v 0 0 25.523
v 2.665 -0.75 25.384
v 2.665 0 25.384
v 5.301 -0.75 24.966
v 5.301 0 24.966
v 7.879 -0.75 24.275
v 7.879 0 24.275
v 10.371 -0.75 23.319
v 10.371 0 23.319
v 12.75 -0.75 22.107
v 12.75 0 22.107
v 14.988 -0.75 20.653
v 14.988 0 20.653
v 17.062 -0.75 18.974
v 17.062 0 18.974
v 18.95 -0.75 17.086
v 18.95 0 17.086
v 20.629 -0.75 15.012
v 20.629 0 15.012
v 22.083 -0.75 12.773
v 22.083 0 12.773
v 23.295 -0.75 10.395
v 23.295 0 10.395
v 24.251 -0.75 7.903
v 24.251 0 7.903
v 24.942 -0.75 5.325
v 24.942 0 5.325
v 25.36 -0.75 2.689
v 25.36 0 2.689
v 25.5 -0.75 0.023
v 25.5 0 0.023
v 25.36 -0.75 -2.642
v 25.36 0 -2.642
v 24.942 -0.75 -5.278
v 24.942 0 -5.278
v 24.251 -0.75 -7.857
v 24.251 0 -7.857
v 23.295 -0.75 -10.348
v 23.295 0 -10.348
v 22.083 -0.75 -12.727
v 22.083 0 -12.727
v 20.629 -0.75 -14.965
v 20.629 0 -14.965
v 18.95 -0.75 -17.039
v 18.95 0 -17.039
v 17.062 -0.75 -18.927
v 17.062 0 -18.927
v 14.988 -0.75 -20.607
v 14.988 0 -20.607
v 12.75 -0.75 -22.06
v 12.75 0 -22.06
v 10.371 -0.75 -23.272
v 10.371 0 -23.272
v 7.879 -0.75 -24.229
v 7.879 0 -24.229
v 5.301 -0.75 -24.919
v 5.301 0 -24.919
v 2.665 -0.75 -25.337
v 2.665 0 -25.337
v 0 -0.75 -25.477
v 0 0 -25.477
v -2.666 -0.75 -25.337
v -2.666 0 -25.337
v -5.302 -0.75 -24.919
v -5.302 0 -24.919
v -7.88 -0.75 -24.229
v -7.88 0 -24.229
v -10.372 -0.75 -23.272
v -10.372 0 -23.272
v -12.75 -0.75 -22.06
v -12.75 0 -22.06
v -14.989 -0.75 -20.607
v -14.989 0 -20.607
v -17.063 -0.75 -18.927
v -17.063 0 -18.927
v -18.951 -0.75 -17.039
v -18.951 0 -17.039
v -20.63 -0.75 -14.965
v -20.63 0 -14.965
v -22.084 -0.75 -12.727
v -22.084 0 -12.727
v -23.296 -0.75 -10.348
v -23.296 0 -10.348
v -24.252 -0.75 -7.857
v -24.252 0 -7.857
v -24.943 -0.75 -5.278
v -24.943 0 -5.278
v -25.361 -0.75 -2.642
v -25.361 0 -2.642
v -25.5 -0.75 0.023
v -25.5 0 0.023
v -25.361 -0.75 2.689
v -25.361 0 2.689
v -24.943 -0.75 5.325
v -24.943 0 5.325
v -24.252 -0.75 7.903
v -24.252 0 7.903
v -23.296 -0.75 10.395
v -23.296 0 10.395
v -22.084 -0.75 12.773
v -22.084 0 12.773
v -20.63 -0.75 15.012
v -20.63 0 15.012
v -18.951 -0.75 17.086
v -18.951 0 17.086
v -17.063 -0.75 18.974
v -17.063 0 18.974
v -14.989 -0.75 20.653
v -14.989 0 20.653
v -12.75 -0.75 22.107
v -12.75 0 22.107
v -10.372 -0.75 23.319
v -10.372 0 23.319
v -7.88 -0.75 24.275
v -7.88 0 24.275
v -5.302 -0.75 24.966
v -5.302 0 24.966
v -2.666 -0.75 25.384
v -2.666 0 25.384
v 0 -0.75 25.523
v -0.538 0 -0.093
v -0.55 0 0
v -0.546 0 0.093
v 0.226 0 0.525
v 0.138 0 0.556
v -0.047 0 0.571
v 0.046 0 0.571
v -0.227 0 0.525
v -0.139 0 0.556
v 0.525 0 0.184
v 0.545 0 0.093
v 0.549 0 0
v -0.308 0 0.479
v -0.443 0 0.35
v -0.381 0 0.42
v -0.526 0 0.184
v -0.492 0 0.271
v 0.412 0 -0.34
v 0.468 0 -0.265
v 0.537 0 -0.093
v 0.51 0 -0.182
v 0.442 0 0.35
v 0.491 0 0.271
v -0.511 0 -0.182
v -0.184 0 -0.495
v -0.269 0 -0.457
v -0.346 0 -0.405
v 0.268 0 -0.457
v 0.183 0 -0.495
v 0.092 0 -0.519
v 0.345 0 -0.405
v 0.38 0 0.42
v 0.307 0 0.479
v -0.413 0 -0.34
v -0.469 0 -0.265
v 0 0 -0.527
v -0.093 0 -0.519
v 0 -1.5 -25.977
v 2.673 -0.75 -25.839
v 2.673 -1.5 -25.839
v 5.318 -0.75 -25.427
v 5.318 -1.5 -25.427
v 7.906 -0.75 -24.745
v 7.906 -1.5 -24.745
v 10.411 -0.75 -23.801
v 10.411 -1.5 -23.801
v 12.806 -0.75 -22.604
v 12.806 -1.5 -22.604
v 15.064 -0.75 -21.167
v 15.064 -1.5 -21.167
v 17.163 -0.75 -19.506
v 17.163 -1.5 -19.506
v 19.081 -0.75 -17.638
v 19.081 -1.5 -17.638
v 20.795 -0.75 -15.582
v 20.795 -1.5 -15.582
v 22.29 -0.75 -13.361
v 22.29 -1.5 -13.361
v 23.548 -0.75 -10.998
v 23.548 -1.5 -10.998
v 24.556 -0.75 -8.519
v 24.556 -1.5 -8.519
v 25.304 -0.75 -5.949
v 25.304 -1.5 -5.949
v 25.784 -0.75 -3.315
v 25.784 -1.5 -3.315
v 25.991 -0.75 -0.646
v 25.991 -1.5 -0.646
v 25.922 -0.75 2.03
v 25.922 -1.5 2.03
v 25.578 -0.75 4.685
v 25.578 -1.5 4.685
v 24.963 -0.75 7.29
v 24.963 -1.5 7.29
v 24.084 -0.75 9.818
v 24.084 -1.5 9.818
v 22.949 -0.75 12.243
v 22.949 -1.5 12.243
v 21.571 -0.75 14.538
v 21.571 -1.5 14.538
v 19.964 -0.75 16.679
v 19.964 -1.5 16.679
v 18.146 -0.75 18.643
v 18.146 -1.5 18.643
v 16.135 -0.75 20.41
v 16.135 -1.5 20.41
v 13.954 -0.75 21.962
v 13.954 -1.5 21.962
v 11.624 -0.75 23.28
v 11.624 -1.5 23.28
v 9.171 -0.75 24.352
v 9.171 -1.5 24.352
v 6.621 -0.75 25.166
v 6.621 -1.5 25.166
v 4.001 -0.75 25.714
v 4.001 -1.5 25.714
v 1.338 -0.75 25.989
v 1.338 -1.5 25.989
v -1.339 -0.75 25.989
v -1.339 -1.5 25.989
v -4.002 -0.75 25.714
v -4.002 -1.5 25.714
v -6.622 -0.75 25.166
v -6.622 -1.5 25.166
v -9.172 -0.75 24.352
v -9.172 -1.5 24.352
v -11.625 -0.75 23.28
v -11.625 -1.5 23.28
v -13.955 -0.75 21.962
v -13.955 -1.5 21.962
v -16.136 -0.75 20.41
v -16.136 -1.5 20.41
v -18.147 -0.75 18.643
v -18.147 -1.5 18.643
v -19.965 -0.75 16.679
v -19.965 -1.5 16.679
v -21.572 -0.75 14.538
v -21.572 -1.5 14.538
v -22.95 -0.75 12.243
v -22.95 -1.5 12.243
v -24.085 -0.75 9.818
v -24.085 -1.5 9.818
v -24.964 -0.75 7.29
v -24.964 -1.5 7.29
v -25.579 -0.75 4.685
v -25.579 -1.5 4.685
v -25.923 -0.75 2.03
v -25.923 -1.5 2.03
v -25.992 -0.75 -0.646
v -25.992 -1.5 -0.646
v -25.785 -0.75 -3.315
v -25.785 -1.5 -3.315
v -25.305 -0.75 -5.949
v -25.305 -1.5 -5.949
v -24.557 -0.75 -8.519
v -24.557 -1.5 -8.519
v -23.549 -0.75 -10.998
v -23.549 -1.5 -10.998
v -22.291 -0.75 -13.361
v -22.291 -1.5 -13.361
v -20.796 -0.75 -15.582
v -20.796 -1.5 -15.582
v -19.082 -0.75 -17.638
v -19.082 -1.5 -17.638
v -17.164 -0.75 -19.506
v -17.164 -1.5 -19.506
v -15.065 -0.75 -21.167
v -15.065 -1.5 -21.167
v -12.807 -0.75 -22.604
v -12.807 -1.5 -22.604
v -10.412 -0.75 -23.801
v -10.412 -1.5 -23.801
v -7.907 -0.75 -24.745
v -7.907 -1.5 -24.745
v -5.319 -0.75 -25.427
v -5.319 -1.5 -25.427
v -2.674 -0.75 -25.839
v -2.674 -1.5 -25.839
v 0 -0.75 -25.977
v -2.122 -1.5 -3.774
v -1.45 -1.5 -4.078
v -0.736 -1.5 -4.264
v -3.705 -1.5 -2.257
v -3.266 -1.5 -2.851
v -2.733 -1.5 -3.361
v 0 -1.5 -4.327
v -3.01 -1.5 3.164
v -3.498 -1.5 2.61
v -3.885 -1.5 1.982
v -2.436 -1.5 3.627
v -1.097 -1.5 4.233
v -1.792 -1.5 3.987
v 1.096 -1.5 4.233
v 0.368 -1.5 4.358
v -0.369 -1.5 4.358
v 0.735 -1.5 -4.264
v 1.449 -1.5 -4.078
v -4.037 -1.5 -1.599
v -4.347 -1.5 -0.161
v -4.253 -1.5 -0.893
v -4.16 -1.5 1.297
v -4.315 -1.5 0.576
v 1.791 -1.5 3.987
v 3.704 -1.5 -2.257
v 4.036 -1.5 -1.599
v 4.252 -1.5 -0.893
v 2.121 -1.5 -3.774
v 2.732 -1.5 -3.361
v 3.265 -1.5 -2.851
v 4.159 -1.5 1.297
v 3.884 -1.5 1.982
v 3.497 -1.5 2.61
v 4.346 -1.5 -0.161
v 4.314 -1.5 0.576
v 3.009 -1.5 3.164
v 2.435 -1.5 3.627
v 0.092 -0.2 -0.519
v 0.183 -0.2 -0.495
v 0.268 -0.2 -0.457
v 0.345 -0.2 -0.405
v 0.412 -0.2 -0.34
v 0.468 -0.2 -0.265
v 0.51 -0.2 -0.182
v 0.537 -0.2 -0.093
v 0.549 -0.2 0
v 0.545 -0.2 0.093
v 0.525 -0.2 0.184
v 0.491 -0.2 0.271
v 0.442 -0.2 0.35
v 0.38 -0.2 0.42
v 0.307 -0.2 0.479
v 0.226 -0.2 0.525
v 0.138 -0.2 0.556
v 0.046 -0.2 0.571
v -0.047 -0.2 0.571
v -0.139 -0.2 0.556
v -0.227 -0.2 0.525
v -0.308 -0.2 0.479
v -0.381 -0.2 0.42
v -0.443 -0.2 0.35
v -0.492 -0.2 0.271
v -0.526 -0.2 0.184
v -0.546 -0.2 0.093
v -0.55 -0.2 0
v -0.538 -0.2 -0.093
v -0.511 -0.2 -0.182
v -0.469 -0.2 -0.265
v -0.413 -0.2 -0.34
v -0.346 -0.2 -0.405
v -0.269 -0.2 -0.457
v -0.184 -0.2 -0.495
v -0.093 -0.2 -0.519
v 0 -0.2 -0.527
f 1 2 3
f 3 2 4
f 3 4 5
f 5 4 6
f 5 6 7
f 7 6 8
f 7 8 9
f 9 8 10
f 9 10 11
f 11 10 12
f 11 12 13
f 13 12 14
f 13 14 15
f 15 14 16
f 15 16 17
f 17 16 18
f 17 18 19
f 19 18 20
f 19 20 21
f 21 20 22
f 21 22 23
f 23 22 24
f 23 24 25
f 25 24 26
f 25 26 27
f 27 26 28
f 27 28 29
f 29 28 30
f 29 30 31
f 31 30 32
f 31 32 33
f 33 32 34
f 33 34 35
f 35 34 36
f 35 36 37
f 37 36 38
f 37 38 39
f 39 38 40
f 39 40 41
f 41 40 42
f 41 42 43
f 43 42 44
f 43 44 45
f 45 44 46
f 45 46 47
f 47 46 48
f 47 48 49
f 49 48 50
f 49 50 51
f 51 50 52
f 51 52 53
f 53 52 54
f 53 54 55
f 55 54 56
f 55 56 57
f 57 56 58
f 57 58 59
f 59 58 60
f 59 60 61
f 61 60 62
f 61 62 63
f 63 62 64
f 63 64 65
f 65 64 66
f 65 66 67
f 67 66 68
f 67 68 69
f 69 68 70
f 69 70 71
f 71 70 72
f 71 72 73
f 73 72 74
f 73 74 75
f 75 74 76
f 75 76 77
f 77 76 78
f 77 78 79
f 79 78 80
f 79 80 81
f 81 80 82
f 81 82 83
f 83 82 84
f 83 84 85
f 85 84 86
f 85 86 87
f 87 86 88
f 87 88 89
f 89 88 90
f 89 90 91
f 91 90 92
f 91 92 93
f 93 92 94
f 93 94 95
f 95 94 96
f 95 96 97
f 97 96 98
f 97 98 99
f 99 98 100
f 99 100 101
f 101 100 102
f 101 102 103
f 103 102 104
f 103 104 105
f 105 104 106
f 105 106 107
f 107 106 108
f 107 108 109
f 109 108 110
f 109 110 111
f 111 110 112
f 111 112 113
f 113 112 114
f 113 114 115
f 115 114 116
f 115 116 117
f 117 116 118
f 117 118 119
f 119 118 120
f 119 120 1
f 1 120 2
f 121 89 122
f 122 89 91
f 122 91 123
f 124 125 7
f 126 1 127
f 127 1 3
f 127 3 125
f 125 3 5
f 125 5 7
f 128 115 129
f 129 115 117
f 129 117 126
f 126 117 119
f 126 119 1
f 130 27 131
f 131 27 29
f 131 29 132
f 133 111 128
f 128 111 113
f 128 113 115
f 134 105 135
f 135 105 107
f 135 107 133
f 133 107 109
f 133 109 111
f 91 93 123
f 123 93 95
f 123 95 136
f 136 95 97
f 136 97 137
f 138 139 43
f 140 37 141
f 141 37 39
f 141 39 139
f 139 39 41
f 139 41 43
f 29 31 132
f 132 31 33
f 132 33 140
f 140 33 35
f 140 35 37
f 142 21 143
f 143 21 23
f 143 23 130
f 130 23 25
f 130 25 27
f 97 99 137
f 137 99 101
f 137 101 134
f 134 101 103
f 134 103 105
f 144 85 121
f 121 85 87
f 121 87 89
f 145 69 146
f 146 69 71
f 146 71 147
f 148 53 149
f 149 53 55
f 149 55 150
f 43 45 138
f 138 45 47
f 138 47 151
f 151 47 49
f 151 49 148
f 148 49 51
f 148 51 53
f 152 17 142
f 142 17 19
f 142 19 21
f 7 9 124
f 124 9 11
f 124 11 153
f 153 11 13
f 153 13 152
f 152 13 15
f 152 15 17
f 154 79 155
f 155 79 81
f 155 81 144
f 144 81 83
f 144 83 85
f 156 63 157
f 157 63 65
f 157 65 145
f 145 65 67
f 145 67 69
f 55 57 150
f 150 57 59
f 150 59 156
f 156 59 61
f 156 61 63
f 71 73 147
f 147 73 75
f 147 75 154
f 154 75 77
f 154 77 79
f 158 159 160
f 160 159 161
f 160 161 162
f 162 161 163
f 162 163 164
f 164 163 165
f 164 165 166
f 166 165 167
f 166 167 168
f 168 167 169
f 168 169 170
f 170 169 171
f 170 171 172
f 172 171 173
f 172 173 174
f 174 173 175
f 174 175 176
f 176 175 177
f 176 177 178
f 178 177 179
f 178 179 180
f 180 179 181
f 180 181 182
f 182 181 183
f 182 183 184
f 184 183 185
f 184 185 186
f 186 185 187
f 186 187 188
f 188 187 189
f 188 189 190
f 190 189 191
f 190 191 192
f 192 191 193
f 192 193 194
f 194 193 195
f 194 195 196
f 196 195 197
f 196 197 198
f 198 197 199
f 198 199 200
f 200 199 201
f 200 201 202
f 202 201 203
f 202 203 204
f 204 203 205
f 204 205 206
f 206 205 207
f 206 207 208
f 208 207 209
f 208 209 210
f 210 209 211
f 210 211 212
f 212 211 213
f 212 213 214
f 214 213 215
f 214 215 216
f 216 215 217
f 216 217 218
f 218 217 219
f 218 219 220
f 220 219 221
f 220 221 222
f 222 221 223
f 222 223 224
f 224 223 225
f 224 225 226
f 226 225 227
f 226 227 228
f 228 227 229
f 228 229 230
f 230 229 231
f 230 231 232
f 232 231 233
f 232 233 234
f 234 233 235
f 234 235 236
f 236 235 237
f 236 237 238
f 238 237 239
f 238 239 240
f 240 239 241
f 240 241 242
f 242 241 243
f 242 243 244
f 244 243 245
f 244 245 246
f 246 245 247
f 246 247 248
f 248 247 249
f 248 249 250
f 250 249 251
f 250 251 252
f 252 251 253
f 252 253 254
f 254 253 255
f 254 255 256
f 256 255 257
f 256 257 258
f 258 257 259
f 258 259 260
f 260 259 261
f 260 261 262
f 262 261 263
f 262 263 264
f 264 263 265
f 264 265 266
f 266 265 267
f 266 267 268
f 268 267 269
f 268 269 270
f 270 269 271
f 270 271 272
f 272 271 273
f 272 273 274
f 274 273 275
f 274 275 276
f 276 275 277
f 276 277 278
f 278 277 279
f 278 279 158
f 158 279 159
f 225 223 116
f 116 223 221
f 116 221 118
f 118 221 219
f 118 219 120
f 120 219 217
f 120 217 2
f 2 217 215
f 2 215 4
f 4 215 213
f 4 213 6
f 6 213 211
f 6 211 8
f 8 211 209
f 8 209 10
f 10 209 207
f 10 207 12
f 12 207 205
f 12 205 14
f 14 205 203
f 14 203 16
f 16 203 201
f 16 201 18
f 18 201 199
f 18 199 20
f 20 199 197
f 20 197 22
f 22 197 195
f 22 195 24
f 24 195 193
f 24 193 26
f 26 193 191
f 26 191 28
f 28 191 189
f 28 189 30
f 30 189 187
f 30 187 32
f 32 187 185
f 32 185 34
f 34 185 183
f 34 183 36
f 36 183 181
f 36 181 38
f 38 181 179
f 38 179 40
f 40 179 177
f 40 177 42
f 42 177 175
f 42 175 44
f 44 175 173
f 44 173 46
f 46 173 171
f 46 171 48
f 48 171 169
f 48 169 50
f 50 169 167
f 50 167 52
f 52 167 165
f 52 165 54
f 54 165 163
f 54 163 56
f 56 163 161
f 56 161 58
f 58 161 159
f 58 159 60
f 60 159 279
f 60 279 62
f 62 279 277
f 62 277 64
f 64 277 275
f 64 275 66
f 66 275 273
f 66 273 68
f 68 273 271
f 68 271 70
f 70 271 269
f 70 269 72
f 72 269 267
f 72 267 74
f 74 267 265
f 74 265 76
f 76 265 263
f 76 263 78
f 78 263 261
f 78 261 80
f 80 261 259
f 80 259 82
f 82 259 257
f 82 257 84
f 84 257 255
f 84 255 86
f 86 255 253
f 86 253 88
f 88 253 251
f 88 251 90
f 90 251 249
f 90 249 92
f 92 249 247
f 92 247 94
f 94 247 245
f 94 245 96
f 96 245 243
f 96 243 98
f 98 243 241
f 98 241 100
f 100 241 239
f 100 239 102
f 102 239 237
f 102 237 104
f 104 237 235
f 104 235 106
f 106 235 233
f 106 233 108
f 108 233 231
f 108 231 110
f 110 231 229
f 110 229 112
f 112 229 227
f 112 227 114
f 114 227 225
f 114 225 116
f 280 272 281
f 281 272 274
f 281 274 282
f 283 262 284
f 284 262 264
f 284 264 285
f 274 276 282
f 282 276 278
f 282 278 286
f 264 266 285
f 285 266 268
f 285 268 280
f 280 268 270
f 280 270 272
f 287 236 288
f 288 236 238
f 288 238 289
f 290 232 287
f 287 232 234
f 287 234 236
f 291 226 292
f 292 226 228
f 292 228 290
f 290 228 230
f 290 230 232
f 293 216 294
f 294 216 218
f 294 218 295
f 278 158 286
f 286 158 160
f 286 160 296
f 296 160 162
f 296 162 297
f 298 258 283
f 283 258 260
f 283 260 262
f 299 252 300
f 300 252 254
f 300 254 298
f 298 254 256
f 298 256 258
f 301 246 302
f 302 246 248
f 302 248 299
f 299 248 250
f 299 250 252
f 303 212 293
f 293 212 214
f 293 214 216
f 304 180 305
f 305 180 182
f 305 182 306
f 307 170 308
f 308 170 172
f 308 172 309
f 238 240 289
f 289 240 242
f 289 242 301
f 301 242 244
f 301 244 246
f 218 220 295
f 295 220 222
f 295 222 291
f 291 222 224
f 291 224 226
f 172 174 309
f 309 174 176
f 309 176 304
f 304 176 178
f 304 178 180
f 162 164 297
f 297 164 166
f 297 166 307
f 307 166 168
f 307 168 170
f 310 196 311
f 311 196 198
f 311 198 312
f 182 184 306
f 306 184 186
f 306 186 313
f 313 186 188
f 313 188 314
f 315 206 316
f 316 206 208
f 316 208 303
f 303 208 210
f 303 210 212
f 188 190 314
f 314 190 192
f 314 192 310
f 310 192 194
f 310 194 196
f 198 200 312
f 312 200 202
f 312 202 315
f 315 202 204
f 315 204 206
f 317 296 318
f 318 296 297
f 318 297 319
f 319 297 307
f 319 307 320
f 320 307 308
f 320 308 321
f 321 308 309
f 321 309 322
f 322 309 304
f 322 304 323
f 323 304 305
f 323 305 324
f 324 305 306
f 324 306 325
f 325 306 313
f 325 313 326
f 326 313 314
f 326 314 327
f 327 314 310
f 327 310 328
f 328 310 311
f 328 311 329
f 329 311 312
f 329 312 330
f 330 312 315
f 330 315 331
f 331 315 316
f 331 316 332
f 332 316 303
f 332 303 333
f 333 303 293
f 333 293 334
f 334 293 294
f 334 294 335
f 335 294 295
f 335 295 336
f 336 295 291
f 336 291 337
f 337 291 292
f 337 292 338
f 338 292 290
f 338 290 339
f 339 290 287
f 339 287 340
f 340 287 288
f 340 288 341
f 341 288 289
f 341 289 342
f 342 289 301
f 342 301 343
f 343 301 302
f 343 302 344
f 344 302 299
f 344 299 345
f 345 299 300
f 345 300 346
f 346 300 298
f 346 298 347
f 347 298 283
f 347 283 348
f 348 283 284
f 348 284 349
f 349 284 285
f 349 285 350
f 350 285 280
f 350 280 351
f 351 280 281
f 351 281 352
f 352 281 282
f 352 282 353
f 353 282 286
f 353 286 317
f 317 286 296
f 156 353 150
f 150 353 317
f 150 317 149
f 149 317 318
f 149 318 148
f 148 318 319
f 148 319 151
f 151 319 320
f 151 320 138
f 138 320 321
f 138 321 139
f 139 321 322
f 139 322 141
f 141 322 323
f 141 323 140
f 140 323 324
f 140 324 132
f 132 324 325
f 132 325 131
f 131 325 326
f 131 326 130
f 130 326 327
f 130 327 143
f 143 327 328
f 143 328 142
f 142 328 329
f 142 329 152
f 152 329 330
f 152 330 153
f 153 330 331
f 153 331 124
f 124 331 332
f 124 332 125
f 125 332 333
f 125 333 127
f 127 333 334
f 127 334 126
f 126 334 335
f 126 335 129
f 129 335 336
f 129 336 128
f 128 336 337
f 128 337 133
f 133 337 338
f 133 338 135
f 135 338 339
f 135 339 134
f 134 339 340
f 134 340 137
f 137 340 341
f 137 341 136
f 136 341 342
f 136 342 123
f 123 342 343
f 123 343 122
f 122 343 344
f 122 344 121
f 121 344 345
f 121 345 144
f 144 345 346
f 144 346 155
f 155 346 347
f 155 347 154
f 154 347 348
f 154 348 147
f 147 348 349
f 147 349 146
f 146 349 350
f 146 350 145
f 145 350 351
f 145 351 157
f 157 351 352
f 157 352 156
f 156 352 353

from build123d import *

# Parameters (mm, degrees)
SKETCH1_R           = 25.5
BOSS_EXTRUDE1_DEPTH = 1.5
SKETCH2_R           = 26
BOSS_EXTRUDE2_DEPTH = 0.75
SKETCH3_R           = 0.6
CUT_EXTRUDE1_DEPTH  = 1.75


with BuildPart() as part:
    # Sketch1 → Boss-Extrude1 (new body)
    with BuildSketch(Plane(origin=(0, 0, 0), x_dir=(1, 0, 0), z_dir=(0, 1, 0))):
        Circle(SKETCH1_R)
    extrude(amount=-BOSS_EXTRUDE1_DEPTH)

    # Sketch2 → Boss-Extrude2 (add)
    with BuildSketch(Plane(origin=(0, -1.5, 0), x_dir=(-1, 0, 0), z_dir=(0, -1, 0))):
        Circle(SKETCH2_R)
    extrude(amount=-BOSS_EXTRUDE2_DEPTH)

    # Sketch3 → Cut-Extrude1 (cut, through all)
    with BuildSketch(Plane(origin=(0, -0.75, 0), x_dir=(1, 0, 0), z_dir=(0, 1, 0))):
        Circle(SKETCH3_R)
    extrude(amount=-CUT_EXTRUDE1_DEPTH, mode=Mode.SUBTRACT)

    # Sketch4 → Cut-Revolve1 (revolve, cut)
    with BuildSketch(Plane.XY):
        Polygon((-4.35, -1.5), (0, -1.5), (0, 0), (-0.55, 0), (-0.55, -0.2), align=None)
    revolve(axis=Axis((0, -1.5, 0), (0, 1, 0)), mode=Mode.SUBTRACT)


solid = part.part
